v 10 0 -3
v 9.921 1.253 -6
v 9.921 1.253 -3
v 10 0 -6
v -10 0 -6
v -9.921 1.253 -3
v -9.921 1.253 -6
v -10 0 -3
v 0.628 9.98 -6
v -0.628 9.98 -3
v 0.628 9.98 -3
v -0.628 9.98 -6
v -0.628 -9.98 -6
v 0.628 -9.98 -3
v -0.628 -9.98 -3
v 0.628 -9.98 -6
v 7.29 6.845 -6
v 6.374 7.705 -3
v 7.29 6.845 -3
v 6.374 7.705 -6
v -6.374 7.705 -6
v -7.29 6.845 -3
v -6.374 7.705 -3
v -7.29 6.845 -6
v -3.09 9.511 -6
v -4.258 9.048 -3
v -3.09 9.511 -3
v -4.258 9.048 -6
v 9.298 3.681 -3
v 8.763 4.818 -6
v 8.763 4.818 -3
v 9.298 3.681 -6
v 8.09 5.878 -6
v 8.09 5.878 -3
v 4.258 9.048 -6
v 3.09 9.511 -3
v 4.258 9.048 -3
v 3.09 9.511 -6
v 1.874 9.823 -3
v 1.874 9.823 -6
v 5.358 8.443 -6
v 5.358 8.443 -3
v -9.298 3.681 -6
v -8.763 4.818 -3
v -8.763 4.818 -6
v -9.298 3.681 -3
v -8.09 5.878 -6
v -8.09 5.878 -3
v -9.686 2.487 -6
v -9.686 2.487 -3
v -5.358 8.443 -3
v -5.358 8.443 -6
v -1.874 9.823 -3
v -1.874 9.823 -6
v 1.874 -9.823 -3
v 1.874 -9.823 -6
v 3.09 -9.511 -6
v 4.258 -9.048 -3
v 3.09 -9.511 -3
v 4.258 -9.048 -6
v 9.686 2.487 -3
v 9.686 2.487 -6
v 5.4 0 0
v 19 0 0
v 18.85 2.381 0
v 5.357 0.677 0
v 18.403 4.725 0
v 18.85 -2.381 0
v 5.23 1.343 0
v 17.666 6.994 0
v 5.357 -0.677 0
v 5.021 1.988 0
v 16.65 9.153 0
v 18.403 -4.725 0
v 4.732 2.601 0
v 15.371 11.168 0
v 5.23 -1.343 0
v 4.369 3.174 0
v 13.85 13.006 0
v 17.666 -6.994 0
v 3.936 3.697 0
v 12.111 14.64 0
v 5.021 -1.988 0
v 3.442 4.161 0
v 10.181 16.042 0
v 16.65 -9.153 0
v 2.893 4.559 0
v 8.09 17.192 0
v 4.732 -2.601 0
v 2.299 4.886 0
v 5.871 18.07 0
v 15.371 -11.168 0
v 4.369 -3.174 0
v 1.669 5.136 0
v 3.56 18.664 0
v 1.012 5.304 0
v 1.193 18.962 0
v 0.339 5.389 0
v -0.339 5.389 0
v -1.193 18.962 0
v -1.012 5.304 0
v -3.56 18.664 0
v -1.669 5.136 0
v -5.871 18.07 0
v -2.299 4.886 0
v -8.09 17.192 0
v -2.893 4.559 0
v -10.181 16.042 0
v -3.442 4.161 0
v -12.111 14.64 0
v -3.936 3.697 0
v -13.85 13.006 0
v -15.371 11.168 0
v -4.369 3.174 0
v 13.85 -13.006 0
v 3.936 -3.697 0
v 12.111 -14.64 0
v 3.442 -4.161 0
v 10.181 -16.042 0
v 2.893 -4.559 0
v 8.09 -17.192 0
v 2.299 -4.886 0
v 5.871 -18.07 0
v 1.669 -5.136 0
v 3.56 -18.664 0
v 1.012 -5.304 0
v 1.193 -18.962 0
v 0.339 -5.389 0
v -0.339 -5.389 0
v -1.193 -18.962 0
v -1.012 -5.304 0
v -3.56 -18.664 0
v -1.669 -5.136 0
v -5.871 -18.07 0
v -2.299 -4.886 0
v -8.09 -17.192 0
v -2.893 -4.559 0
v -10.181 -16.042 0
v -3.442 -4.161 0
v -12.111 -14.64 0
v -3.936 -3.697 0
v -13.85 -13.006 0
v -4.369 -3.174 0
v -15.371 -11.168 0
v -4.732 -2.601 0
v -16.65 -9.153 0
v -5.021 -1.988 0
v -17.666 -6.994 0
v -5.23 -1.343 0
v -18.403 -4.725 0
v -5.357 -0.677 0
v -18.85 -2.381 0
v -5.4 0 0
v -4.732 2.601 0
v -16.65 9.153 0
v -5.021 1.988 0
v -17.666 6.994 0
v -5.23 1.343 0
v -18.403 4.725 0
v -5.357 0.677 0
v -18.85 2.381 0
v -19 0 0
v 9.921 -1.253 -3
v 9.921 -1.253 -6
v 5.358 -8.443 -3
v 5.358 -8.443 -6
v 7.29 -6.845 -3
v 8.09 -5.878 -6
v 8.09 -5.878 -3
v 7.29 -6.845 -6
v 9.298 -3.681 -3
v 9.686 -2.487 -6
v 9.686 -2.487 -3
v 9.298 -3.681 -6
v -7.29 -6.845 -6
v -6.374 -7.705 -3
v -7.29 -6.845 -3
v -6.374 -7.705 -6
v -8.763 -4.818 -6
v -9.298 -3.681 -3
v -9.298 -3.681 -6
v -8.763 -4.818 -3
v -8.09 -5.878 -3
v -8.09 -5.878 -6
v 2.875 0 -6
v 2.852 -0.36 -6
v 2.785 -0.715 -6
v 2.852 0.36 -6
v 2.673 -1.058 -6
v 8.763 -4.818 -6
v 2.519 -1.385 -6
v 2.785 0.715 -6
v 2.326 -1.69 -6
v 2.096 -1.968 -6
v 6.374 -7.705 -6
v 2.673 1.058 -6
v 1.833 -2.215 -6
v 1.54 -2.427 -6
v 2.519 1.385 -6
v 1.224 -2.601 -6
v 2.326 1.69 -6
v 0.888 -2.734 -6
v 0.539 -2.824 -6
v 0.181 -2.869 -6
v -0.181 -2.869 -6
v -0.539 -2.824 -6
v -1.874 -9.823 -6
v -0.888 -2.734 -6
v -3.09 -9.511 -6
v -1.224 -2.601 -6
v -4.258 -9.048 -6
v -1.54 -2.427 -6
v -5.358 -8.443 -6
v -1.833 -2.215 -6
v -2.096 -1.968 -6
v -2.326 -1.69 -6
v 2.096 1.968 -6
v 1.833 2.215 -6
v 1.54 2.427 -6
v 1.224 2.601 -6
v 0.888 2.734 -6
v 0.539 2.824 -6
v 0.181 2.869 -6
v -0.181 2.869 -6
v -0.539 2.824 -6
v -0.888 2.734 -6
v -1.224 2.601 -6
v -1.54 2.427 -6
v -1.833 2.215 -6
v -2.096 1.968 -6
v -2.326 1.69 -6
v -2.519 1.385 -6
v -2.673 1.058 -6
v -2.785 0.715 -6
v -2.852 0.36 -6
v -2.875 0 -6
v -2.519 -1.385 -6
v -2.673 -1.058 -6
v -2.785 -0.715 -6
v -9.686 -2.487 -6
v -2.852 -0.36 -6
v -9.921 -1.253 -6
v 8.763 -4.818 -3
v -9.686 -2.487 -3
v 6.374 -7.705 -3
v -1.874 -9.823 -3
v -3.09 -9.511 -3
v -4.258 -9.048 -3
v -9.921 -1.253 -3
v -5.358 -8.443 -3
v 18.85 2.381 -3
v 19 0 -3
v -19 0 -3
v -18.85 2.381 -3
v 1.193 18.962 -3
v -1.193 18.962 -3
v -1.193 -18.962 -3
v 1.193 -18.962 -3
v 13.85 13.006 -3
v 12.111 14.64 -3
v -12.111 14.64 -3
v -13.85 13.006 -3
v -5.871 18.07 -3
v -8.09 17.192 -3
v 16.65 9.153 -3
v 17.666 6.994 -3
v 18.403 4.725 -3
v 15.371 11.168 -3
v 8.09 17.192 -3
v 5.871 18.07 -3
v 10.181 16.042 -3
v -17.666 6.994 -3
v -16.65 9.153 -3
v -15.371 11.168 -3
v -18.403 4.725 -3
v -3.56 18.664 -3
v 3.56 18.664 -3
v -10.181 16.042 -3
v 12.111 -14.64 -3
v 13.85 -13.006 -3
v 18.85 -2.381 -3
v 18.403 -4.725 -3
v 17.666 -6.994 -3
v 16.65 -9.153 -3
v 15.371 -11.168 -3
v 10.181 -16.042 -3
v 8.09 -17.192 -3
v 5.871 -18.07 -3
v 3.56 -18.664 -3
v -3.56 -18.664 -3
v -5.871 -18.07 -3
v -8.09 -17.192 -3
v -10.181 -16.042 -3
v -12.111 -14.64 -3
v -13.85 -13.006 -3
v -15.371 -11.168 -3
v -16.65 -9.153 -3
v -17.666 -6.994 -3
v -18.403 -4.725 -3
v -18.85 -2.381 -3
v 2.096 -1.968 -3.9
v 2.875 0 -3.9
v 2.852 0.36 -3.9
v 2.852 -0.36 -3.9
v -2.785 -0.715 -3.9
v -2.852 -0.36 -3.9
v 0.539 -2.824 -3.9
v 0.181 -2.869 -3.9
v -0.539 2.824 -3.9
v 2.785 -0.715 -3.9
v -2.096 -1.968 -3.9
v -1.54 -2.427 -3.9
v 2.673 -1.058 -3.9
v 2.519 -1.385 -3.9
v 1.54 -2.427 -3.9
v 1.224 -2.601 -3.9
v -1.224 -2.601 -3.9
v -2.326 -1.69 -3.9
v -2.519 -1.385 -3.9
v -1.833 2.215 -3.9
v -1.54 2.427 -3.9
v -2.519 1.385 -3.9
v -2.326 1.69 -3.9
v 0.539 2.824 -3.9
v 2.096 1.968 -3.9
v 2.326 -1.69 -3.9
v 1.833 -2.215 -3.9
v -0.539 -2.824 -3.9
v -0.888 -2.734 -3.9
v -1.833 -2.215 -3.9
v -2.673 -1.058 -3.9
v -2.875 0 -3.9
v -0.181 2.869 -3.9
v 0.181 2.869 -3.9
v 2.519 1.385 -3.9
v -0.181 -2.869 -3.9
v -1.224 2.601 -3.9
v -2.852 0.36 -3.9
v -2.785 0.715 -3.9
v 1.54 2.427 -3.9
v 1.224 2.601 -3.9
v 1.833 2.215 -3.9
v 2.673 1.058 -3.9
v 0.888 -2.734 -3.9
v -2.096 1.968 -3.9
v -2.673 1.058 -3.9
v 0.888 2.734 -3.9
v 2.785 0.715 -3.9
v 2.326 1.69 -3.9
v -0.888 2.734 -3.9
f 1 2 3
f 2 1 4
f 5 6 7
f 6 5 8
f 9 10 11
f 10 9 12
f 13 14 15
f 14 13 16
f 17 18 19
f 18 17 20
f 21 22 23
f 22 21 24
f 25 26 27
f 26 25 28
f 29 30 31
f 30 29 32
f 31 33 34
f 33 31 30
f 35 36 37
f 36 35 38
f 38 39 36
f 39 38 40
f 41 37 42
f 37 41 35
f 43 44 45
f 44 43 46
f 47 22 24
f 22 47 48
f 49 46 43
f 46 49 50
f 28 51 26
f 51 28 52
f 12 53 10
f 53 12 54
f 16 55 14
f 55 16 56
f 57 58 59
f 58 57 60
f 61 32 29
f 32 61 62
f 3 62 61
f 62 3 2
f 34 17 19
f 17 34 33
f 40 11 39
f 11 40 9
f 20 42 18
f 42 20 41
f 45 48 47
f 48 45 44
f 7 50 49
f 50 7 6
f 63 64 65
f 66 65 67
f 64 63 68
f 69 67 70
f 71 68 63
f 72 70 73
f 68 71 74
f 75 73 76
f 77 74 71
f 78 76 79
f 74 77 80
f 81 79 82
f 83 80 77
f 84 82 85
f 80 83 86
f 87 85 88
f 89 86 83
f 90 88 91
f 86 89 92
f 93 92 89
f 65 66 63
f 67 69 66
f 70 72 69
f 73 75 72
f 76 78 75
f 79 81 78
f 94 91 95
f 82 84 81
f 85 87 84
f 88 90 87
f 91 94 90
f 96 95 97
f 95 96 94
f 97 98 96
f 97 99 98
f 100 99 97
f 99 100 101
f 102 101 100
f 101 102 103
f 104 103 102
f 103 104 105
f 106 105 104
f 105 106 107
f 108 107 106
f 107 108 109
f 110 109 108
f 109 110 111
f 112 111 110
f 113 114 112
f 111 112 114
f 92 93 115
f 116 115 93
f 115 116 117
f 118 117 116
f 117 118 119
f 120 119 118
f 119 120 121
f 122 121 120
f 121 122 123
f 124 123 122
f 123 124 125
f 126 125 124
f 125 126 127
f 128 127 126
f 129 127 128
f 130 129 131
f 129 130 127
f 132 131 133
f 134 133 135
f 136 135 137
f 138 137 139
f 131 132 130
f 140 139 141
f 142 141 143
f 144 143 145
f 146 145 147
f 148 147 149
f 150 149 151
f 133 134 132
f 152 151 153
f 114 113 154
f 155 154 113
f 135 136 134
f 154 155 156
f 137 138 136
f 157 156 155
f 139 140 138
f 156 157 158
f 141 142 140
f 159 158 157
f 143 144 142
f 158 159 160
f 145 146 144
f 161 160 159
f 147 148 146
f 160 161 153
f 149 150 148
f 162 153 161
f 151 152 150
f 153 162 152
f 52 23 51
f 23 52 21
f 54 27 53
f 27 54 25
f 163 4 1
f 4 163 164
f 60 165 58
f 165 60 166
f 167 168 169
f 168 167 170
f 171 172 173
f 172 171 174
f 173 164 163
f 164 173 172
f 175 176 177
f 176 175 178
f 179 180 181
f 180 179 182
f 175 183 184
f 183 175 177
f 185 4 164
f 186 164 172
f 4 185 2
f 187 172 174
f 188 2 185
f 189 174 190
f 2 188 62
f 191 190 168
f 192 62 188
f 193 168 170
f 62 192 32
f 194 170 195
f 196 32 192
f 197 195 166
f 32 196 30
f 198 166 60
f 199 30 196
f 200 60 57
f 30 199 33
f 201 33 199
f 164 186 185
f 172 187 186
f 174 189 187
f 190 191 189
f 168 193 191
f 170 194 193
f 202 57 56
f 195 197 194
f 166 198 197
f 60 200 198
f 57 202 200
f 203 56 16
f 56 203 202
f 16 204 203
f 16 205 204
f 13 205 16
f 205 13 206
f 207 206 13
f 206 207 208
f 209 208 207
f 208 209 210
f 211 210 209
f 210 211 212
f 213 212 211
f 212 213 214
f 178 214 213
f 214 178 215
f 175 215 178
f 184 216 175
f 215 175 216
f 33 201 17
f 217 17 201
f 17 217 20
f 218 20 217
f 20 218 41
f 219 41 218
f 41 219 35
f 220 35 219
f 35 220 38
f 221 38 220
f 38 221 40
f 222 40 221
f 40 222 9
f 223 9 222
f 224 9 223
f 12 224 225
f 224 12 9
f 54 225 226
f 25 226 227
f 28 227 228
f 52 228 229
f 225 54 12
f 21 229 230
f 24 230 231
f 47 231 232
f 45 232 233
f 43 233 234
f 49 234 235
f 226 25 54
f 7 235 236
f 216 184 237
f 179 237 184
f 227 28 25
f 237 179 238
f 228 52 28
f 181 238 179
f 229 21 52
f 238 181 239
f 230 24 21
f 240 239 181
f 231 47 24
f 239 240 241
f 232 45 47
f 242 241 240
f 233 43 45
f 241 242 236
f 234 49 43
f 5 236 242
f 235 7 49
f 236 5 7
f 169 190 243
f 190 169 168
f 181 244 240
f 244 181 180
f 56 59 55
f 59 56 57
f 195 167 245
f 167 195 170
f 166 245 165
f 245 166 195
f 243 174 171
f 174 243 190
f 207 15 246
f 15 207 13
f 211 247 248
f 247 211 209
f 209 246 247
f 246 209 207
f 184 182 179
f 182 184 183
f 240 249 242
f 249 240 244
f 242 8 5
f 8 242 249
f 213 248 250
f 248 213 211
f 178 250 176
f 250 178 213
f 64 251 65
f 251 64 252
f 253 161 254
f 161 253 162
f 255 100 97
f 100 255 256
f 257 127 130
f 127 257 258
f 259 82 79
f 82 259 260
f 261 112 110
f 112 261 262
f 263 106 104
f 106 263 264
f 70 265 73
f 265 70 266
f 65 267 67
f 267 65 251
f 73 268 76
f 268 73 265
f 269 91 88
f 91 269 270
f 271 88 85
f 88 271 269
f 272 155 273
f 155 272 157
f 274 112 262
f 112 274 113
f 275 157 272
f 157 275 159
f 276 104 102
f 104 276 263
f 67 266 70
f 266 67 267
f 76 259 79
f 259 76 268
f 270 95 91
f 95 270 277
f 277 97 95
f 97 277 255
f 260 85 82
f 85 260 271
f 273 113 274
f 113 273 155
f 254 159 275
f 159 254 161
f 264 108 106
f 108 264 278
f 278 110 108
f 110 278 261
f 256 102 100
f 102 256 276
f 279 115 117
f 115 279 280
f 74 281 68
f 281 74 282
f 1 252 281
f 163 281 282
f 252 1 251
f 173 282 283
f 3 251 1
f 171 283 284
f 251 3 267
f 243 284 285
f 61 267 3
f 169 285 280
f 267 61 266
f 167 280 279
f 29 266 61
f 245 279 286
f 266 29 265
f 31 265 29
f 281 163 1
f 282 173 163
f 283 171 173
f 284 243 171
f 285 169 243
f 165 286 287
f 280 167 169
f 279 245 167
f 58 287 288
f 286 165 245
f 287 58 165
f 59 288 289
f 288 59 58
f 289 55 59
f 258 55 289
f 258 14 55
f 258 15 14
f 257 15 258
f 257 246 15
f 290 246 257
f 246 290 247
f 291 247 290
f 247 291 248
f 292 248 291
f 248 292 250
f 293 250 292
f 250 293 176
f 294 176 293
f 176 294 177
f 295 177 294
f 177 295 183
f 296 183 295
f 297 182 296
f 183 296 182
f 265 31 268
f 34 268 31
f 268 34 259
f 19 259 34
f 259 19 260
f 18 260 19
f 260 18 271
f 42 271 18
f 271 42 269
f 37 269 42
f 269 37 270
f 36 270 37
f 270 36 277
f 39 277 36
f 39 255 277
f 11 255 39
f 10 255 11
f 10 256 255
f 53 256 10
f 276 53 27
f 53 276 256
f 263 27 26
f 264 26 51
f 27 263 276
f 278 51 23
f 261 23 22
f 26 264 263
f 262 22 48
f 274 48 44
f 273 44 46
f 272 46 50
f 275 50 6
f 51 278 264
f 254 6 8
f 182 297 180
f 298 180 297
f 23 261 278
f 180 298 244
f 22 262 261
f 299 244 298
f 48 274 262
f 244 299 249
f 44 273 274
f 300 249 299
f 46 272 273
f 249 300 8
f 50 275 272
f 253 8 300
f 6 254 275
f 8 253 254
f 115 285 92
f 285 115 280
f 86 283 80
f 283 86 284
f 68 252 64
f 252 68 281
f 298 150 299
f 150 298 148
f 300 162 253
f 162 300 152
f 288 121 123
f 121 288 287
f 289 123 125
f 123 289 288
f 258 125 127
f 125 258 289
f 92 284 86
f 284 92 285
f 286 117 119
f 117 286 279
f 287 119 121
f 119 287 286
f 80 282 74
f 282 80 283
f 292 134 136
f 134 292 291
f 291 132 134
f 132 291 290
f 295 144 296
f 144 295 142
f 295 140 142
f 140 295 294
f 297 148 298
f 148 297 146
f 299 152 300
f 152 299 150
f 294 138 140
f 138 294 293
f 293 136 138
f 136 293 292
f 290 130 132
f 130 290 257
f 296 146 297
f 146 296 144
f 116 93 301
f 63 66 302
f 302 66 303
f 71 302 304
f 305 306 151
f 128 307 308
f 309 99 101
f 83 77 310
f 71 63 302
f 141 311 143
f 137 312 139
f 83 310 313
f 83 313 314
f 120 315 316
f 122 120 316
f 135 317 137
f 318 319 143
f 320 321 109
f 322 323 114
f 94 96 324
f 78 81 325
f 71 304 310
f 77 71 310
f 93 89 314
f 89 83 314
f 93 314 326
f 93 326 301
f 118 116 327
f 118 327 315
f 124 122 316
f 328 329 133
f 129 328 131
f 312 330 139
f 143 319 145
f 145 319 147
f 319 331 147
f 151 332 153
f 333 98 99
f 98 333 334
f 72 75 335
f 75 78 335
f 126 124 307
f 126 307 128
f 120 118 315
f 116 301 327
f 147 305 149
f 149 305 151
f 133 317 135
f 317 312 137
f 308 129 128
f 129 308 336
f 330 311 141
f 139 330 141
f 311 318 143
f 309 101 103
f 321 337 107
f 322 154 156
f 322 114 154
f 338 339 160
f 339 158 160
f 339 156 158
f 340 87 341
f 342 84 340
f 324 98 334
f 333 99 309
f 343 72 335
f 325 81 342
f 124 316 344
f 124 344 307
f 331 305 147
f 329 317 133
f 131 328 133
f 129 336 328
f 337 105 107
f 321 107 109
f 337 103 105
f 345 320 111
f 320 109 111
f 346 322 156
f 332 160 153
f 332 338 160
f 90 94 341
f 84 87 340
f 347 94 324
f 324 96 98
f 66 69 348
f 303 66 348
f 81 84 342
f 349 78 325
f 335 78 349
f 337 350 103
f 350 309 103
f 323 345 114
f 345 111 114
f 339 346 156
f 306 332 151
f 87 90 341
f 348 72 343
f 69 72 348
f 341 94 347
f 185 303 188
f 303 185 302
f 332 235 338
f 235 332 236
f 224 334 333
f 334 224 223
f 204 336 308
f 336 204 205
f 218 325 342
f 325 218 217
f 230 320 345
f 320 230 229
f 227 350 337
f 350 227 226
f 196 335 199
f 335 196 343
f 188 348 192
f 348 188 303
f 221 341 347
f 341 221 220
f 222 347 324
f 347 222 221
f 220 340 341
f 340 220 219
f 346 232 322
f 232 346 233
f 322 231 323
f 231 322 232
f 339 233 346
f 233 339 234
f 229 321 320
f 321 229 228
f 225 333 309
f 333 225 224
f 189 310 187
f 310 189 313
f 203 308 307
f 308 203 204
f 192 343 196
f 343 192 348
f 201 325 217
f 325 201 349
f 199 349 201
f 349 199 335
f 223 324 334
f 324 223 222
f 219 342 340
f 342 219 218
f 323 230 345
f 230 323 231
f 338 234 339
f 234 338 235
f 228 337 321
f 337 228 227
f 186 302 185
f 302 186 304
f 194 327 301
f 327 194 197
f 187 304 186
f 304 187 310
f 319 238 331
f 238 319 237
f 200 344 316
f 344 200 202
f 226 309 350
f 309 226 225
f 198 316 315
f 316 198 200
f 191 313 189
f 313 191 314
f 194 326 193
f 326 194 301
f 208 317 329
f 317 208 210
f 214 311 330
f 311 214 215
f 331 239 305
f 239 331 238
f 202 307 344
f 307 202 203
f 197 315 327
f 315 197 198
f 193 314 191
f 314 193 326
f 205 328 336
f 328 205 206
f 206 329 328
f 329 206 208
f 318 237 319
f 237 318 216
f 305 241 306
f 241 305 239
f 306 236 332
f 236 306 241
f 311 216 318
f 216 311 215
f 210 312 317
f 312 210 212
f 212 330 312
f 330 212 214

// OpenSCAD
$fn = 50;


difference() {
	union() {
		translate(v = [0, 0, -6.0000000000]) {
			cylinder(h = 6, r = 10.0000000000);
		}
		translate(v = [0, 0, -3.0000000000]) {
			cylinder(h = 3, r = 19.0000000000);
		}
	}
	union() {
		translate(v = [0, 0, 0]) {
			rotate(a = [0, 0, 0]) {
				difference() {
					union() {
						#translate(v = [0, 0, -6.0000000000]) {
							cylinder(h = 6, r = 2.6000000000);
						}
						#translate(v = [0, 0, -3.9000000000]) {
							cylinder(h = 3.9000000000, r1 = 2.8750000000, r2 = 5.4000000000);
						}
						#translate(v = [0, 0, -6.0000000000]) {
							cylinder(h = 6, r = 2.8750000000);
						}
						#translate(v = [0, 0, -6.0000000000]) {
							cylinder(h = 6, r = 2.6000000000);
						}
					}
					union();
				}
			}
		}
	}
}
